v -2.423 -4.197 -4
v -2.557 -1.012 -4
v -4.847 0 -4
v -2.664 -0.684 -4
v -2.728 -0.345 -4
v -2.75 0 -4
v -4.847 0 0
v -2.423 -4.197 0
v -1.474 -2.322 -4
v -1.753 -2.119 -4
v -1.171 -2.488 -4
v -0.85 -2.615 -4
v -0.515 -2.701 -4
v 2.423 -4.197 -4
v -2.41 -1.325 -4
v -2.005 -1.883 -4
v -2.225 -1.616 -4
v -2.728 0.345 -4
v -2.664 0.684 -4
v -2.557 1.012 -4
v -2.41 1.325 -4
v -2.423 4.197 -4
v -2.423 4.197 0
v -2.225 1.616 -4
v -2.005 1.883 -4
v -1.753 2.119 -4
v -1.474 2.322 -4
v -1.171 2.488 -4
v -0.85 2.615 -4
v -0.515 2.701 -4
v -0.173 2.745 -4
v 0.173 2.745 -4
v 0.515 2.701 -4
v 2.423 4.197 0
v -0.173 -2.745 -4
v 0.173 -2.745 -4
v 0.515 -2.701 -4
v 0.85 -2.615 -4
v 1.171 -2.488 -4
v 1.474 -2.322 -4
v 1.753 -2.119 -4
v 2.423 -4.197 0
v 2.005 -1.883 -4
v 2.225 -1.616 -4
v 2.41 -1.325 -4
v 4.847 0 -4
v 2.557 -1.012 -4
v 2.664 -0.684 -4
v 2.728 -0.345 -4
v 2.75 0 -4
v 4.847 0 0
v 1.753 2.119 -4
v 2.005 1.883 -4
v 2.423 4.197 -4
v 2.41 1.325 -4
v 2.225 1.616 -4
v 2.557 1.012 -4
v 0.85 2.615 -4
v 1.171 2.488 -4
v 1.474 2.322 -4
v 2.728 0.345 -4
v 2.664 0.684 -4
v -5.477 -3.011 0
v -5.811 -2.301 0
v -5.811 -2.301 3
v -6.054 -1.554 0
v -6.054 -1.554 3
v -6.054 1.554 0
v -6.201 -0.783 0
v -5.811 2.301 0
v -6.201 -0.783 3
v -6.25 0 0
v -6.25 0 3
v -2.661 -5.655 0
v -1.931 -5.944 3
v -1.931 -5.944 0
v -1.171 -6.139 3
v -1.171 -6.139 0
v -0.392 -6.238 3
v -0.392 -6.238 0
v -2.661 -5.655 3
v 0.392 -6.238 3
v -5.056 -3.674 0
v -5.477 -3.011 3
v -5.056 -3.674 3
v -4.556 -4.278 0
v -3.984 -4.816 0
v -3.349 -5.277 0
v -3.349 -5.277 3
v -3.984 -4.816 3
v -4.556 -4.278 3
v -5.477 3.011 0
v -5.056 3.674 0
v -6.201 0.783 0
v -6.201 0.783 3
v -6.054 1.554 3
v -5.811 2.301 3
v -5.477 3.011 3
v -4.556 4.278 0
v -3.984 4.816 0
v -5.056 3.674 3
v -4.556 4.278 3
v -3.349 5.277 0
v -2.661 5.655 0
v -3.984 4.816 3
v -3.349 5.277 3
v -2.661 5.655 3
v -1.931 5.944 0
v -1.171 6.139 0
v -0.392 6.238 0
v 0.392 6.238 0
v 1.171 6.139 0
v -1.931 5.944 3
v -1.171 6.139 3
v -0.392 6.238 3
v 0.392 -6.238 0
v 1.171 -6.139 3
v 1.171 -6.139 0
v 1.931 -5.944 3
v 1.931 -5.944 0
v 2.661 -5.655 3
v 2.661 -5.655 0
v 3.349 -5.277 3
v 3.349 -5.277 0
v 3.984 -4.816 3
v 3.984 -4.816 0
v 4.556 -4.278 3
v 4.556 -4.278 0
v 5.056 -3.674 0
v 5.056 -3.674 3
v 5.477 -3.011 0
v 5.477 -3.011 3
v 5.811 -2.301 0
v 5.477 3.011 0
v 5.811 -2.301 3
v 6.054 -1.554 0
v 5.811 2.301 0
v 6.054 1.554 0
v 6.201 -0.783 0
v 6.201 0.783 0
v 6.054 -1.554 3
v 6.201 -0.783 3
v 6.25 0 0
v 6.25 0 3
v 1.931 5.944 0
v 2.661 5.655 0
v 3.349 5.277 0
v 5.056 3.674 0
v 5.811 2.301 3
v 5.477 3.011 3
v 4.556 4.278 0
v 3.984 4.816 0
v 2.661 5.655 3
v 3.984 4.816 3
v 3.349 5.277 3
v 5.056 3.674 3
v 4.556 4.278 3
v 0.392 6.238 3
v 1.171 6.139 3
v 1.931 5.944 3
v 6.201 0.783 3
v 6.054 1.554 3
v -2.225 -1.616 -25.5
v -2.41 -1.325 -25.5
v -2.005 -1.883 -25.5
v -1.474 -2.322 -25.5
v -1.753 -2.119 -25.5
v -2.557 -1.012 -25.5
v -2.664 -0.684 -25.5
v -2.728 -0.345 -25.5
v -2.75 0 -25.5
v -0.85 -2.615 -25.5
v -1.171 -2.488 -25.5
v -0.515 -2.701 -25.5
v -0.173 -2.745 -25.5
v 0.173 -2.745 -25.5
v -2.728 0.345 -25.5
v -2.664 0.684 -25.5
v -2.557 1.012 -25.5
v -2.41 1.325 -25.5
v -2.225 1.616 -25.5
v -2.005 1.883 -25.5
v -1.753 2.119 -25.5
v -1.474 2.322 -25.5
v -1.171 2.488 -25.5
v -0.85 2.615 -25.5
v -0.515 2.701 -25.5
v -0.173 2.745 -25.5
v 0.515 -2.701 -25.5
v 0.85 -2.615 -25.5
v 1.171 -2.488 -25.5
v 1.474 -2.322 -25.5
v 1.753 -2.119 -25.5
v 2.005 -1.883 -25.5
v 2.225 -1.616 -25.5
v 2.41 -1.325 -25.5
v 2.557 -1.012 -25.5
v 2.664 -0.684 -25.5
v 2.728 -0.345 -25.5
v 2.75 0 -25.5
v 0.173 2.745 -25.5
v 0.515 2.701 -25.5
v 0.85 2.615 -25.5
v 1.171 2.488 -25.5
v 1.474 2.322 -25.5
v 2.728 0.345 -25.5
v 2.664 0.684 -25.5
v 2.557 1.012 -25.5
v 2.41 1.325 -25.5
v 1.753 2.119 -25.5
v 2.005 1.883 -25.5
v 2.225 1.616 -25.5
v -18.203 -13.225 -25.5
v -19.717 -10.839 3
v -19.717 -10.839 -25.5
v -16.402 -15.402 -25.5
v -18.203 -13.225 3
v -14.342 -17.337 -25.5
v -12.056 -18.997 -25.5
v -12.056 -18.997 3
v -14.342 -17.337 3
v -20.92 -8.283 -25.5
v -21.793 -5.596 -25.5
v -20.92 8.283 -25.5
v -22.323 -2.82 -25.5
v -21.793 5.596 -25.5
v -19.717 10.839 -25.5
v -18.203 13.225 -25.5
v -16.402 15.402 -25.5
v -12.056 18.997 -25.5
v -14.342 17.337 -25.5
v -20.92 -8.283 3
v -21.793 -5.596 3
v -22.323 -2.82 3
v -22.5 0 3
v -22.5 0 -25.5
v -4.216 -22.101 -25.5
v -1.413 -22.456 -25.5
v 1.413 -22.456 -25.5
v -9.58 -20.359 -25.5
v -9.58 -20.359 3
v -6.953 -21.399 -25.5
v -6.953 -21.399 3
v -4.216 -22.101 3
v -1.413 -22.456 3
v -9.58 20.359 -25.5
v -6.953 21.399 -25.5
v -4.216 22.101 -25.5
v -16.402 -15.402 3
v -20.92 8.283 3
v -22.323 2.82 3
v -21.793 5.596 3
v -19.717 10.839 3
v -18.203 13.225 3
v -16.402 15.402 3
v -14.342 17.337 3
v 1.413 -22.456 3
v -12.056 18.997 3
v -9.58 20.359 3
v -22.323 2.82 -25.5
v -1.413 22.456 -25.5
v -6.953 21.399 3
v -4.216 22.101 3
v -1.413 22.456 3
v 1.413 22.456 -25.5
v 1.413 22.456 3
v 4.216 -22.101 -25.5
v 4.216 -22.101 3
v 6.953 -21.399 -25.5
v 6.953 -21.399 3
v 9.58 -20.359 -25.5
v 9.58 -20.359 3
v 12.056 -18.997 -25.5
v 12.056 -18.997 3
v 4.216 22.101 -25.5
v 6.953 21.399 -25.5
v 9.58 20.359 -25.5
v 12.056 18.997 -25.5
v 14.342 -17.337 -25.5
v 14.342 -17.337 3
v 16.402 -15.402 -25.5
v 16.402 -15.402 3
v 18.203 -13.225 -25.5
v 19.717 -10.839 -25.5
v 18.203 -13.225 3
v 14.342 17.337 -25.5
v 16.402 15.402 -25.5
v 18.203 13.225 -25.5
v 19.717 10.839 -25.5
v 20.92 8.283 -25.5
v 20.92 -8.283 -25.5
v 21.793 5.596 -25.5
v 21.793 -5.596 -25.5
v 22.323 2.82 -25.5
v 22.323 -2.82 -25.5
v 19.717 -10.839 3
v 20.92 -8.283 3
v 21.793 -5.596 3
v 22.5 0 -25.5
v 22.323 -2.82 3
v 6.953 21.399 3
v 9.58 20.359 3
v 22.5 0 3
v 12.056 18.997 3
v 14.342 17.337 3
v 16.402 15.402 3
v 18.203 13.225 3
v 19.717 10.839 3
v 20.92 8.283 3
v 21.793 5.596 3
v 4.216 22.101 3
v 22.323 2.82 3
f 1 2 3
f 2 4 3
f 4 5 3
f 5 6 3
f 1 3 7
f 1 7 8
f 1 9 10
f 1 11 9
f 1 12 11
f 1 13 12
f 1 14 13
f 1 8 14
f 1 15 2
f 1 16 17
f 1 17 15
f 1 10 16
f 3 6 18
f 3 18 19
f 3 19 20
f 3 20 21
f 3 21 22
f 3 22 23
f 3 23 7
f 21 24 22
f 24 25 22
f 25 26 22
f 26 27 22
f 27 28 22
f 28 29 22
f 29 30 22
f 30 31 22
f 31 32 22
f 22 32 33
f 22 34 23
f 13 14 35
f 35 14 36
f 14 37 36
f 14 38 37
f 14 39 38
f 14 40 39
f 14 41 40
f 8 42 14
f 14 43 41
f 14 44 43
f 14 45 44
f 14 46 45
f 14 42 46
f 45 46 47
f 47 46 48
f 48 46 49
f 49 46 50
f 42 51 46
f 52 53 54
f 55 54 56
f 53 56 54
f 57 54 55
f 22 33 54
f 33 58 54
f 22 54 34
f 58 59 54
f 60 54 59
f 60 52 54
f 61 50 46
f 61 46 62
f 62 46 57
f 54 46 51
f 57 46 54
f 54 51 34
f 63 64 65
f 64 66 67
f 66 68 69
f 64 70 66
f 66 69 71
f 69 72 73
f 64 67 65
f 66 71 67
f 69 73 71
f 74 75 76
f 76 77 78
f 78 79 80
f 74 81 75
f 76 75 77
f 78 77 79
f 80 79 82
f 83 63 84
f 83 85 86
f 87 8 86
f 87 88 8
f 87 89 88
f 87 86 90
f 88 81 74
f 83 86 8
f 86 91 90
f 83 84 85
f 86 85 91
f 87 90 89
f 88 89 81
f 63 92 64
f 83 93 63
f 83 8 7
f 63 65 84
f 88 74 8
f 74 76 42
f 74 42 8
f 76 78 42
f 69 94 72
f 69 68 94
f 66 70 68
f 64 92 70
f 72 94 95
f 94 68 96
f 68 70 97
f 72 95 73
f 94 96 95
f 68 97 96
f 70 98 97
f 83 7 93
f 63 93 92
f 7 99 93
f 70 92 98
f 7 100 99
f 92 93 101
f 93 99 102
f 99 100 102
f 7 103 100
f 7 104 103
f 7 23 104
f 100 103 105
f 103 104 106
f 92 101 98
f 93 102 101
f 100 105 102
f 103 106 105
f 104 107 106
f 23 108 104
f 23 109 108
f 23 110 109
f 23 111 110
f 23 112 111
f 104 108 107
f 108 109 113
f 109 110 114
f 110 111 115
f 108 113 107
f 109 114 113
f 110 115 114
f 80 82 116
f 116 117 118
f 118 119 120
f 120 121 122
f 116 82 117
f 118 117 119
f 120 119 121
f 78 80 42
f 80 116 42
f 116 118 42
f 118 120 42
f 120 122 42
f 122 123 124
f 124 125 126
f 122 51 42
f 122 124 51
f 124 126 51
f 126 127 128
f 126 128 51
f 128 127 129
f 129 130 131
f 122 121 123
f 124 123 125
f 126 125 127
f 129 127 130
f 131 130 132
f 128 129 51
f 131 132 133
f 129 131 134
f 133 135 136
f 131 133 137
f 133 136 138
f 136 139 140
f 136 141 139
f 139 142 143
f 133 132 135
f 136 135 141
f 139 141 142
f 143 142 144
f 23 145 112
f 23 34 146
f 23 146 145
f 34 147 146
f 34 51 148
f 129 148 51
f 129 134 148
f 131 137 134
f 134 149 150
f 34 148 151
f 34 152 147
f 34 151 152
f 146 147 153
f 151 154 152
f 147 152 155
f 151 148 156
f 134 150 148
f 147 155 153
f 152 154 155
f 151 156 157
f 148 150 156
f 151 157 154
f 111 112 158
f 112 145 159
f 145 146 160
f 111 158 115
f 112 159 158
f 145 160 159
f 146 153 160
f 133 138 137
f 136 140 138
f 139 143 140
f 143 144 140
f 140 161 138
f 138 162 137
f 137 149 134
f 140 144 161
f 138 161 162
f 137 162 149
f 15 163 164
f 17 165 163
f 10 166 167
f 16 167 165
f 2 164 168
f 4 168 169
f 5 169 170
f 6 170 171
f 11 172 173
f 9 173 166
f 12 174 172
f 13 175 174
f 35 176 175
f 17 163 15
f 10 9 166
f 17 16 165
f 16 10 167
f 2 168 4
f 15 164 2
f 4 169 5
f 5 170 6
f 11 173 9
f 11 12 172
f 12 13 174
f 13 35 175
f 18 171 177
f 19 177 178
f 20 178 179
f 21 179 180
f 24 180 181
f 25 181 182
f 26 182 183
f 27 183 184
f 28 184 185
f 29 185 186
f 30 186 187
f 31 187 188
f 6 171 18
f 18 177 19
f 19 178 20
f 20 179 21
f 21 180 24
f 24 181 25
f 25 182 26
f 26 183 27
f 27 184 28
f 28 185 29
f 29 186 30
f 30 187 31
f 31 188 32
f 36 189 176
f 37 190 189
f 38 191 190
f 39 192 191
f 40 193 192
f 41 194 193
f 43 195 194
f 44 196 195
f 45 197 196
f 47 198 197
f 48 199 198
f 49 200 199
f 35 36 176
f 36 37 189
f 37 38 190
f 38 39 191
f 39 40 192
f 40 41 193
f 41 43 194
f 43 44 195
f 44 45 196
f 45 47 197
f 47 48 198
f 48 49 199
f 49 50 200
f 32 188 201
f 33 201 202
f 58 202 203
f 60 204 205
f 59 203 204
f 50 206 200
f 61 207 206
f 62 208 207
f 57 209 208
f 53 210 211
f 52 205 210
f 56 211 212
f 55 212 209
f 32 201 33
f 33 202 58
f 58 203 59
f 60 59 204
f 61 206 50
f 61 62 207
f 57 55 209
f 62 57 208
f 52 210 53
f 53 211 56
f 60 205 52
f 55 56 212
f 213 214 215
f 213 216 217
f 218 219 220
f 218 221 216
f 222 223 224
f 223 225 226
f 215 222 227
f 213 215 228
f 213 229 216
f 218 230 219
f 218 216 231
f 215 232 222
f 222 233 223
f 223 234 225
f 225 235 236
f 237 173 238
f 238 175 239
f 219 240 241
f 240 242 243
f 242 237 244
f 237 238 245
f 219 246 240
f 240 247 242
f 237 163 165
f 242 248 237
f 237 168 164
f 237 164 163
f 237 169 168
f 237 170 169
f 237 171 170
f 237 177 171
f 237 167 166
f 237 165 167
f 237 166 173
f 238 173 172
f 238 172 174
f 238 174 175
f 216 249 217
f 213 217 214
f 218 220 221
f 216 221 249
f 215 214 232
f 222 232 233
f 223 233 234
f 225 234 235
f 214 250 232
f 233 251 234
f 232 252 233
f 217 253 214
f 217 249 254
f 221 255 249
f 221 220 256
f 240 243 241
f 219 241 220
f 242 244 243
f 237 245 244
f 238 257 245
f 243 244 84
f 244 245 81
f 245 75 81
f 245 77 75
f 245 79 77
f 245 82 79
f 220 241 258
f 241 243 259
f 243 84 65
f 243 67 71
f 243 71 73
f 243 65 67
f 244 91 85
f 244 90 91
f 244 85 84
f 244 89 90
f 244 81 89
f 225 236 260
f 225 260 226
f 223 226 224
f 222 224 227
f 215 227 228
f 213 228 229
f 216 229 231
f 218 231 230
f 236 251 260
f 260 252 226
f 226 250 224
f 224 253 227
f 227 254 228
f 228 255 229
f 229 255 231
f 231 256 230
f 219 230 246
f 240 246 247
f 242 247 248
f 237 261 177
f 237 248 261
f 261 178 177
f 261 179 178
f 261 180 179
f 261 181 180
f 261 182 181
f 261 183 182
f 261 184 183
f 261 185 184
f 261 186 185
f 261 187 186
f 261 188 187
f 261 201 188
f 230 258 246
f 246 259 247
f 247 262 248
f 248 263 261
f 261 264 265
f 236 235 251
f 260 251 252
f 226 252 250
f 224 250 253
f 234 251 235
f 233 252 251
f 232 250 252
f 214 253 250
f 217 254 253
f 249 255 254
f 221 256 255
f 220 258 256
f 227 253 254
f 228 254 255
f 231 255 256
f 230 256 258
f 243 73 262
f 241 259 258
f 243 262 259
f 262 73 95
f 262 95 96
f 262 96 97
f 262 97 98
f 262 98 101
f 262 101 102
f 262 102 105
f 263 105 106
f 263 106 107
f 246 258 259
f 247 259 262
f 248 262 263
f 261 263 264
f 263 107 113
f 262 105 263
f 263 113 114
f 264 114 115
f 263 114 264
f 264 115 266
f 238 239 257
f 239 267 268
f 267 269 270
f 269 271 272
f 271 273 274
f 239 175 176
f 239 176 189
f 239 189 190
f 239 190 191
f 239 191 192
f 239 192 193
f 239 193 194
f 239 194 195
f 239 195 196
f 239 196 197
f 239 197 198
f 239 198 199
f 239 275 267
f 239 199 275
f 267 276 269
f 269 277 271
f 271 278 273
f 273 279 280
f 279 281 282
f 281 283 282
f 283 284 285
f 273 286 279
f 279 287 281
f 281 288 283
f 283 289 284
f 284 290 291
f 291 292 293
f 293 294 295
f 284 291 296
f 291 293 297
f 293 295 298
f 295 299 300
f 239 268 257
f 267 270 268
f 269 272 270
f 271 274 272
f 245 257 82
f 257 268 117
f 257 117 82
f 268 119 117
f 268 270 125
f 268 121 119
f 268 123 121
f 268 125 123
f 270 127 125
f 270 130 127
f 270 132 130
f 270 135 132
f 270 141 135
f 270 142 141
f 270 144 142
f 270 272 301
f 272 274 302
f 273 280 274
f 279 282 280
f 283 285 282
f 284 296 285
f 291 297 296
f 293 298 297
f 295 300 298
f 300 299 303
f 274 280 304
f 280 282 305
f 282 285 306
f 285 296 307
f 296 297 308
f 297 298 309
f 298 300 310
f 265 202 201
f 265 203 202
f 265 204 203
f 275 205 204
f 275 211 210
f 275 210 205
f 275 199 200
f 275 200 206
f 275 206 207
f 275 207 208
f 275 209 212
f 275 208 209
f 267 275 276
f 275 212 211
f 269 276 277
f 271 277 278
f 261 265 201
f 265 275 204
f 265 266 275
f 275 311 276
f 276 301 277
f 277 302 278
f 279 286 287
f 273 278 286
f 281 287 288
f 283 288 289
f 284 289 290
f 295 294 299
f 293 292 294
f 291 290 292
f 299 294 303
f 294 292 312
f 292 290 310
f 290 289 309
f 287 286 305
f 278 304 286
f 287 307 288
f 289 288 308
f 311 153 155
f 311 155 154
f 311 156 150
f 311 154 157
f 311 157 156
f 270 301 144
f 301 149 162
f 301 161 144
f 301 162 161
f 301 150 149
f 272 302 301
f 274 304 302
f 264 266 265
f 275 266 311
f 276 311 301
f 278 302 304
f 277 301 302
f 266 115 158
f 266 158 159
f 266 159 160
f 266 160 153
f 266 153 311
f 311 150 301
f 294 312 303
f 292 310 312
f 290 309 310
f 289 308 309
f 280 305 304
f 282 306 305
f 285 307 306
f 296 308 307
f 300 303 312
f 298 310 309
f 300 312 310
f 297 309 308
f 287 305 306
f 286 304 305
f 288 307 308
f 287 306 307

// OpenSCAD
$fn = 50;


difference() {
	union() {
		translate(v = [0, 0, -25.5000000000]) {
			cylinder(h = 28.5000000000, r = 22.5000000000);
		}
	}
	union() {
		translate(v = [0, 0, 0]) {
			rotate(a = [0, 0, 0]) {
				difference() {
					union() {
						translate(v = [0, 0, -4]) {
							linear_extrude(height = 4) {
								polygon(points = [[4.8468000000, 0.0000000000], [2.4234000000, 4.1974519271], [-2.4234000000, 4.1974519271], [-4.8468000000, 0.0000000000], [-2.4234000000, -4.1974519271], [2.4234000000, -4.1974519271]]);
							}
						}
					}
					union();
				}
			}
		}
		#cylinder(h = 3, r = 6.2500000000);
		#translate(v = [0, 0, -100.0000000000]) {
			cylinder(h = 200, r = 2.7500000000);
		}
	}
}
